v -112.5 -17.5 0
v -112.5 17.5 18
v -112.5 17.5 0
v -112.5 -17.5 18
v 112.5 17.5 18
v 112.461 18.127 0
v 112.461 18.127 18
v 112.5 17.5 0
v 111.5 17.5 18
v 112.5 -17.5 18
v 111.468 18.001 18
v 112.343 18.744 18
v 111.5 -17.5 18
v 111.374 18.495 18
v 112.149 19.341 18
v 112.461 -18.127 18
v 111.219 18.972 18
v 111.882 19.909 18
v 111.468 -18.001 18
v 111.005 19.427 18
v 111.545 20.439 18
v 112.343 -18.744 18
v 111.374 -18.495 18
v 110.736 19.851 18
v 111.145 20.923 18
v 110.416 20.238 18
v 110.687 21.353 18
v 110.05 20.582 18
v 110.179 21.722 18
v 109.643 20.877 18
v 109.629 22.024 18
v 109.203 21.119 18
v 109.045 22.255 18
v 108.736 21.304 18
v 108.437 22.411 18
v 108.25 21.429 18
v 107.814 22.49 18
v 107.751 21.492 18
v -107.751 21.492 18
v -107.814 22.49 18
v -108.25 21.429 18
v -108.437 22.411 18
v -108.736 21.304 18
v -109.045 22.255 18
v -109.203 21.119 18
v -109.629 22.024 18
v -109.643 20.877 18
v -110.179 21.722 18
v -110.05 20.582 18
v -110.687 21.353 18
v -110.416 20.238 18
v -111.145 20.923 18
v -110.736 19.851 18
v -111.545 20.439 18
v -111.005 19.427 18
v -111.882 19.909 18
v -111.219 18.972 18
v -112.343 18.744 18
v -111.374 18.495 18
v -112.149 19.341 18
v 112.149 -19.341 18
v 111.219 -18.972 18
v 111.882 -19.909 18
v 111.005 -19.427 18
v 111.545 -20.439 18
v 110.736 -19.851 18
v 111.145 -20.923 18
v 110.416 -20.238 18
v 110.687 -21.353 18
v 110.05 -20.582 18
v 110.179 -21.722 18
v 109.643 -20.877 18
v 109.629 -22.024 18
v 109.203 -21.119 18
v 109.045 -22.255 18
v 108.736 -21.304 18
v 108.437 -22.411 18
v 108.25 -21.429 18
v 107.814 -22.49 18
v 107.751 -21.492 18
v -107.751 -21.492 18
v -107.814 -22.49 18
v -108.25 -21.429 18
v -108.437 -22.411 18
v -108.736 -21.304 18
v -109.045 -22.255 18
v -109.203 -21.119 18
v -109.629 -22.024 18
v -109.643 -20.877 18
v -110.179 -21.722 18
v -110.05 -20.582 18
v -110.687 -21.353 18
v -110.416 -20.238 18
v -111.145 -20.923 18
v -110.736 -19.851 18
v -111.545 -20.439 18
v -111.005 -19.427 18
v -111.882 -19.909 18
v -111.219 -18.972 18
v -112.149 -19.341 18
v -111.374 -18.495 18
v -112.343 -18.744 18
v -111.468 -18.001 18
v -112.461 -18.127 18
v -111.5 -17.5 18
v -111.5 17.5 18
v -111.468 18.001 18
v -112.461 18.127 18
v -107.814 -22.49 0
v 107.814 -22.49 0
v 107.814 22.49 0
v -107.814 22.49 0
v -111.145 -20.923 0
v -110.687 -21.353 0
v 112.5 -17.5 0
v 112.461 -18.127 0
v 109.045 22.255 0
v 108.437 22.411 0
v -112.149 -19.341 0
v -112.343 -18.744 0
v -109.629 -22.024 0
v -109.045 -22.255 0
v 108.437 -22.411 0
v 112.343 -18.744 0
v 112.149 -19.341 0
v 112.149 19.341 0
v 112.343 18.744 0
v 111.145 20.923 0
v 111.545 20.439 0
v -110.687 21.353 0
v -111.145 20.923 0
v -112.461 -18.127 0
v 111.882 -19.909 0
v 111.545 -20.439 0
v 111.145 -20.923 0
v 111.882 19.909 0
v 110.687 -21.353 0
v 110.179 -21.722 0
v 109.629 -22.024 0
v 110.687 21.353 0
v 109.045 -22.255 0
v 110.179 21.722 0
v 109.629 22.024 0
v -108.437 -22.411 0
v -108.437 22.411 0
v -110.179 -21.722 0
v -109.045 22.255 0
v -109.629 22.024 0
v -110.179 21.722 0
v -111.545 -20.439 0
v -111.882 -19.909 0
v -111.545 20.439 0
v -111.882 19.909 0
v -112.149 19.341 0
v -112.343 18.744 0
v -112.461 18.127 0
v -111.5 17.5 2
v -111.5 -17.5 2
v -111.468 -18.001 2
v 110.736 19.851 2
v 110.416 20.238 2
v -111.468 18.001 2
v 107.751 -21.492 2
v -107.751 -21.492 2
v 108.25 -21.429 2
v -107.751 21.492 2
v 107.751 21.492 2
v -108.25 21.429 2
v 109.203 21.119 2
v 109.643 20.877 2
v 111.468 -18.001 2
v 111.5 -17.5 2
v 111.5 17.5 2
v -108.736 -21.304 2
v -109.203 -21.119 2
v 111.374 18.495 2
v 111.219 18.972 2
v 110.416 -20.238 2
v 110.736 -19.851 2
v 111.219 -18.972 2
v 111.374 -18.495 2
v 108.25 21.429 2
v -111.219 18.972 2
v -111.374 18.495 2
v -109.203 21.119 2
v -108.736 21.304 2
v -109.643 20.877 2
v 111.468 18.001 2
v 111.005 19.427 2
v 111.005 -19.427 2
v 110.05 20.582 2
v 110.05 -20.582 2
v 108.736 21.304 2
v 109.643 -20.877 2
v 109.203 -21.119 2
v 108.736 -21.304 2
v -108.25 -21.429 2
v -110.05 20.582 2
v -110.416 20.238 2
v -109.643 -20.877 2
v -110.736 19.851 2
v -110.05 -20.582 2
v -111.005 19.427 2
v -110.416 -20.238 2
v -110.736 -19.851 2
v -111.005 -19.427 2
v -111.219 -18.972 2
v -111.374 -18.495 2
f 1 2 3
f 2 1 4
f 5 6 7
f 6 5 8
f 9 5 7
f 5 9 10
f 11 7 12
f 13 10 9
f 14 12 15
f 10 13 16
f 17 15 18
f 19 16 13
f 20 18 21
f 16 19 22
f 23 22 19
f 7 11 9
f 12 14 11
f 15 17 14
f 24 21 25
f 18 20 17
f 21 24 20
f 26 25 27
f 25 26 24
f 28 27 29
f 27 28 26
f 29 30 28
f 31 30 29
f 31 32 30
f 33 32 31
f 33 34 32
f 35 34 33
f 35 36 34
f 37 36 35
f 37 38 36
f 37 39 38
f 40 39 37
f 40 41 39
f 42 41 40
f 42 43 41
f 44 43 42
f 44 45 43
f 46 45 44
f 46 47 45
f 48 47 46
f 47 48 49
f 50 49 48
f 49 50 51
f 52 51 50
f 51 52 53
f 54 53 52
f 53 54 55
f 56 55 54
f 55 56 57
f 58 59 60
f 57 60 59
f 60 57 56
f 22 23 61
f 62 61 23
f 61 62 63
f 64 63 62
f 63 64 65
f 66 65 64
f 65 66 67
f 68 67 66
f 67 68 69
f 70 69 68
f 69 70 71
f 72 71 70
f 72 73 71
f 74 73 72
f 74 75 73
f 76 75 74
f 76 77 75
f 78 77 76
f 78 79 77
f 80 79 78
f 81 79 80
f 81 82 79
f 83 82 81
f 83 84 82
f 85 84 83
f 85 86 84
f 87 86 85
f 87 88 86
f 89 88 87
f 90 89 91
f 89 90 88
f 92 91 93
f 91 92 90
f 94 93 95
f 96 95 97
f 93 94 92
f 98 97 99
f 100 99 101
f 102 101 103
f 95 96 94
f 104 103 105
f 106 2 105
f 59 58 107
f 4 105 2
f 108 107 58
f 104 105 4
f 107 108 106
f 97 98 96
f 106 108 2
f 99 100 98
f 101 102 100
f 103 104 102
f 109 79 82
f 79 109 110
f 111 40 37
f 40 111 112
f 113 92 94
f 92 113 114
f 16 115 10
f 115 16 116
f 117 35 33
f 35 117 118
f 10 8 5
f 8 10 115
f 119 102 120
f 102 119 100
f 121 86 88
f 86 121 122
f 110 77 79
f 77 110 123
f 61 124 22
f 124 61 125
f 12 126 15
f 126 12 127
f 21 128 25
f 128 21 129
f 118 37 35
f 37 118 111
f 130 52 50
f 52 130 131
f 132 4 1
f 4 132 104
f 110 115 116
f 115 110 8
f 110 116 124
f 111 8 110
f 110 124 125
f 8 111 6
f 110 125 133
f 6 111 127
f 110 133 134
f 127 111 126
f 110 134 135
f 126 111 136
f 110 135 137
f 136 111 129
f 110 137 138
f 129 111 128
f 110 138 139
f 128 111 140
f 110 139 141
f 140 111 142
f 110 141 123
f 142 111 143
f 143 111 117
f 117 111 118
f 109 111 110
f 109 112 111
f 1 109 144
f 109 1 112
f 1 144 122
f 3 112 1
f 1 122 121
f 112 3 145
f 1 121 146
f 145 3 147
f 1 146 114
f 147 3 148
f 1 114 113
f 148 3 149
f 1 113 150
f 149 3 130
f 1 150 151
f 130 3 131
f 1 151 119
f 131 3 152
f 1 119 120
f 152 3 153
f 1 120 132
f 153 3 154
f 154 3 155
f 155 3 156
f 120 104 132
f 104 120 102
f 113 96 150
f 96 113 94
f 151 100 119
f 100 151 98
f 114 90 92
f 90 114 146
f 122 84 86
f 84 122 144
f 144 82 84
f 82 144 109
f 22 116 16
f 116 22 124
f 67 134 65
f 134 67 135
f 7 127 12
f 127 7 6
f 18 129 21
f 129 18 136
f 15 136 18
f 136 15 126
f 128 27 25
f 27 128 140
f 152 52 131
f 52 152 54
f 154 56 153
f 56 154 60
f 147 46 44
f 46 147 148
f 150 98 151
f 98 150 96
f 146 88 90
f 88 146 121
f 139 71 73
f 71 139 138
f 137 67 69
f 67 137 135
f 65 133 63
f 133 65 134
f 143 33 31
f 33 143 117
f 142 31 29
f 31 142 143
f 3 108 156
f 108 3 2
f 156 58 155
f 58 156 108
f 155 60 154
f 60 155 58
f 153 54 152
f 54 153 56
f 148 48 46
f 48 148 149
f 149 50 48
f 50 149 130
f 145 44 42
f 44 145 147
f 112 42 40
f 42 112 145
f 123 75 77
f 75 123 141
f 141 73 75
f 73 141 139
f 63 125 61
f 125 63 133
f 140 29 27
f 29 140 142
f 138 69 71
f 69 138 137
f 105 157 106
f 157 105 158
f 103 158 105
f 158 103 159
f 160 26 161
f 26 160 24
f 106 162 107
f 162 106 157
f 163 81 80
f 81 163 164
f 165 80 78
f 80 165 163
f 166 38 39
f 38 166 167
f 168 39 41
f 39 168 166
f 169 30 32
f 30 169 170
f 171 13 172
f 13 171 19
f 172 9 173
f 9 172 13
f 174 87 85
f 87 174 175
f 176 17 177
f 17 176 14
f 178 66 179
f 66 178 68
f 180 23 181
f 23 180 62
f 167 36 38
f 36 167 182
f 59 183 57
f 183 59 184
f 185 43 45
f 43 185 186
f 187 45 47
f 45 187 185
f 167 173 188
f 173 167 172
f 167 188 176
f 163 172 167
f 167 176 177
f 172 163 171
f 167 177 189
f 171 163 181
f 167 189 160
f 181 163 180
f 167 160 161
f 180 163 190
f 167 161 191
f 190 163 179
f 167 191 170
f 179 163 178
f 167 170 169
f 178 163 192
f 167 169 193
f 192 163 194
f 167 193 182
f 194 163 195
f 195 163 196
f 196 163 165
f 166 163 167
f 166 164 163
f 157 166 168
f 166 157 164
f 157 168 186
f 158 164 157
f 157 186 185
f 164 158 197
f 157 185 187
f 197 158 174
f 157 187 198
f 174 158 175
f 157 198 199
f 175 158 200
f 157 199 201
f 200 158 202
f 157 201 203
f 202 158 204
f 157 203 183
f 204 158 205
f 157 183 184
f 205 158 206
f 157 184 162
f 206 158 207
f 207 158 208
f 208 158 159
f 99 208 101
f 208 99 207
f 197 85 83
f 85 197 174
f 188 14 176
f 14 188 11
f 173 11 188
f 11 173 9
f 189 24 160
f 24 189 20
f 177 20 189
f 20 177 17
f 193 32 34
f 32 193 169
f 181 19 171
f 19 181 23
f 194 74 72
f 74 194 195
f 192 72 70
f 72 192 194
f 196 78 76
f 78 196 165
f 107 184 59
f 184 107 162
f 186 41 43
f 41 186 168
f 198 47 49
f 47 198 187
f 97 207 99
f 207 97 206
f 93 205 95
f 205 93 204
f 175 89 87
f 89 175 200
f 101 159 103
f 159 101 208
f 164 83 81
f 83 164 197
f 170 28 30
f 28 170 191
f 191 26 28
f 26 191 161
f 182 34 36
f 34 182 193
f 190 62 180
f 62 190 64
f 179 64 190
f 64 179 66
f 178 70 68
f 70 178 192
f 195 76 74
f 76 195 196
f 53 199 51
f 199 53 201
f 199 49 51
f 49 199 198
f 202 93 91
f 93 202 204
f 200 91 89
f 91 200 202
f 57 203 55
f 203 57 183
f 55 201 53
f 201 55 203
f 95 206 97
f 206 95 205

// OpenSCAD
$fn = 50;


difference() {
	union() {
		hull() {
			translate(v = [-107.5000000000, 17.5000000000, 0]) {
				cylinder(h = 18, r = 5);
			}
			translate(v = [107.5000000000, 17.5000000000, 0]) {
				cylinder(h = 18, r = 5);
			}
			translate(v = [-107.5000000000, -17.5000000000, 0]) {
				cylinder(h = 18, r = 5);
			}
			translate(v = [107.5000000000, -17.5000000000, 0]) {
				cylinder(h = 18, r = 5);
			}
		}
	}
	union() {
		translate(v = [0, 0, 2]) {
			hull() {
				translate(v = [-107.5000000000, 17.5000000000, 0]) {
					cylinder(h = 16, r = 4);
				}
				translate(v = [107.5000000000, 17.5000000000, 0]) {
					cylinder(h = 16, r = 4);
				}
				translate(v = [-107.5000000000, -17.5000000000, 0]) {
					cylinder(h = 16, r = 4);
				}
				translate(v = [107.5000000000, -17.5000000000, 0]) {
					cylinder(h = 16, r = 4);
				}
			}
		}
	}
}
